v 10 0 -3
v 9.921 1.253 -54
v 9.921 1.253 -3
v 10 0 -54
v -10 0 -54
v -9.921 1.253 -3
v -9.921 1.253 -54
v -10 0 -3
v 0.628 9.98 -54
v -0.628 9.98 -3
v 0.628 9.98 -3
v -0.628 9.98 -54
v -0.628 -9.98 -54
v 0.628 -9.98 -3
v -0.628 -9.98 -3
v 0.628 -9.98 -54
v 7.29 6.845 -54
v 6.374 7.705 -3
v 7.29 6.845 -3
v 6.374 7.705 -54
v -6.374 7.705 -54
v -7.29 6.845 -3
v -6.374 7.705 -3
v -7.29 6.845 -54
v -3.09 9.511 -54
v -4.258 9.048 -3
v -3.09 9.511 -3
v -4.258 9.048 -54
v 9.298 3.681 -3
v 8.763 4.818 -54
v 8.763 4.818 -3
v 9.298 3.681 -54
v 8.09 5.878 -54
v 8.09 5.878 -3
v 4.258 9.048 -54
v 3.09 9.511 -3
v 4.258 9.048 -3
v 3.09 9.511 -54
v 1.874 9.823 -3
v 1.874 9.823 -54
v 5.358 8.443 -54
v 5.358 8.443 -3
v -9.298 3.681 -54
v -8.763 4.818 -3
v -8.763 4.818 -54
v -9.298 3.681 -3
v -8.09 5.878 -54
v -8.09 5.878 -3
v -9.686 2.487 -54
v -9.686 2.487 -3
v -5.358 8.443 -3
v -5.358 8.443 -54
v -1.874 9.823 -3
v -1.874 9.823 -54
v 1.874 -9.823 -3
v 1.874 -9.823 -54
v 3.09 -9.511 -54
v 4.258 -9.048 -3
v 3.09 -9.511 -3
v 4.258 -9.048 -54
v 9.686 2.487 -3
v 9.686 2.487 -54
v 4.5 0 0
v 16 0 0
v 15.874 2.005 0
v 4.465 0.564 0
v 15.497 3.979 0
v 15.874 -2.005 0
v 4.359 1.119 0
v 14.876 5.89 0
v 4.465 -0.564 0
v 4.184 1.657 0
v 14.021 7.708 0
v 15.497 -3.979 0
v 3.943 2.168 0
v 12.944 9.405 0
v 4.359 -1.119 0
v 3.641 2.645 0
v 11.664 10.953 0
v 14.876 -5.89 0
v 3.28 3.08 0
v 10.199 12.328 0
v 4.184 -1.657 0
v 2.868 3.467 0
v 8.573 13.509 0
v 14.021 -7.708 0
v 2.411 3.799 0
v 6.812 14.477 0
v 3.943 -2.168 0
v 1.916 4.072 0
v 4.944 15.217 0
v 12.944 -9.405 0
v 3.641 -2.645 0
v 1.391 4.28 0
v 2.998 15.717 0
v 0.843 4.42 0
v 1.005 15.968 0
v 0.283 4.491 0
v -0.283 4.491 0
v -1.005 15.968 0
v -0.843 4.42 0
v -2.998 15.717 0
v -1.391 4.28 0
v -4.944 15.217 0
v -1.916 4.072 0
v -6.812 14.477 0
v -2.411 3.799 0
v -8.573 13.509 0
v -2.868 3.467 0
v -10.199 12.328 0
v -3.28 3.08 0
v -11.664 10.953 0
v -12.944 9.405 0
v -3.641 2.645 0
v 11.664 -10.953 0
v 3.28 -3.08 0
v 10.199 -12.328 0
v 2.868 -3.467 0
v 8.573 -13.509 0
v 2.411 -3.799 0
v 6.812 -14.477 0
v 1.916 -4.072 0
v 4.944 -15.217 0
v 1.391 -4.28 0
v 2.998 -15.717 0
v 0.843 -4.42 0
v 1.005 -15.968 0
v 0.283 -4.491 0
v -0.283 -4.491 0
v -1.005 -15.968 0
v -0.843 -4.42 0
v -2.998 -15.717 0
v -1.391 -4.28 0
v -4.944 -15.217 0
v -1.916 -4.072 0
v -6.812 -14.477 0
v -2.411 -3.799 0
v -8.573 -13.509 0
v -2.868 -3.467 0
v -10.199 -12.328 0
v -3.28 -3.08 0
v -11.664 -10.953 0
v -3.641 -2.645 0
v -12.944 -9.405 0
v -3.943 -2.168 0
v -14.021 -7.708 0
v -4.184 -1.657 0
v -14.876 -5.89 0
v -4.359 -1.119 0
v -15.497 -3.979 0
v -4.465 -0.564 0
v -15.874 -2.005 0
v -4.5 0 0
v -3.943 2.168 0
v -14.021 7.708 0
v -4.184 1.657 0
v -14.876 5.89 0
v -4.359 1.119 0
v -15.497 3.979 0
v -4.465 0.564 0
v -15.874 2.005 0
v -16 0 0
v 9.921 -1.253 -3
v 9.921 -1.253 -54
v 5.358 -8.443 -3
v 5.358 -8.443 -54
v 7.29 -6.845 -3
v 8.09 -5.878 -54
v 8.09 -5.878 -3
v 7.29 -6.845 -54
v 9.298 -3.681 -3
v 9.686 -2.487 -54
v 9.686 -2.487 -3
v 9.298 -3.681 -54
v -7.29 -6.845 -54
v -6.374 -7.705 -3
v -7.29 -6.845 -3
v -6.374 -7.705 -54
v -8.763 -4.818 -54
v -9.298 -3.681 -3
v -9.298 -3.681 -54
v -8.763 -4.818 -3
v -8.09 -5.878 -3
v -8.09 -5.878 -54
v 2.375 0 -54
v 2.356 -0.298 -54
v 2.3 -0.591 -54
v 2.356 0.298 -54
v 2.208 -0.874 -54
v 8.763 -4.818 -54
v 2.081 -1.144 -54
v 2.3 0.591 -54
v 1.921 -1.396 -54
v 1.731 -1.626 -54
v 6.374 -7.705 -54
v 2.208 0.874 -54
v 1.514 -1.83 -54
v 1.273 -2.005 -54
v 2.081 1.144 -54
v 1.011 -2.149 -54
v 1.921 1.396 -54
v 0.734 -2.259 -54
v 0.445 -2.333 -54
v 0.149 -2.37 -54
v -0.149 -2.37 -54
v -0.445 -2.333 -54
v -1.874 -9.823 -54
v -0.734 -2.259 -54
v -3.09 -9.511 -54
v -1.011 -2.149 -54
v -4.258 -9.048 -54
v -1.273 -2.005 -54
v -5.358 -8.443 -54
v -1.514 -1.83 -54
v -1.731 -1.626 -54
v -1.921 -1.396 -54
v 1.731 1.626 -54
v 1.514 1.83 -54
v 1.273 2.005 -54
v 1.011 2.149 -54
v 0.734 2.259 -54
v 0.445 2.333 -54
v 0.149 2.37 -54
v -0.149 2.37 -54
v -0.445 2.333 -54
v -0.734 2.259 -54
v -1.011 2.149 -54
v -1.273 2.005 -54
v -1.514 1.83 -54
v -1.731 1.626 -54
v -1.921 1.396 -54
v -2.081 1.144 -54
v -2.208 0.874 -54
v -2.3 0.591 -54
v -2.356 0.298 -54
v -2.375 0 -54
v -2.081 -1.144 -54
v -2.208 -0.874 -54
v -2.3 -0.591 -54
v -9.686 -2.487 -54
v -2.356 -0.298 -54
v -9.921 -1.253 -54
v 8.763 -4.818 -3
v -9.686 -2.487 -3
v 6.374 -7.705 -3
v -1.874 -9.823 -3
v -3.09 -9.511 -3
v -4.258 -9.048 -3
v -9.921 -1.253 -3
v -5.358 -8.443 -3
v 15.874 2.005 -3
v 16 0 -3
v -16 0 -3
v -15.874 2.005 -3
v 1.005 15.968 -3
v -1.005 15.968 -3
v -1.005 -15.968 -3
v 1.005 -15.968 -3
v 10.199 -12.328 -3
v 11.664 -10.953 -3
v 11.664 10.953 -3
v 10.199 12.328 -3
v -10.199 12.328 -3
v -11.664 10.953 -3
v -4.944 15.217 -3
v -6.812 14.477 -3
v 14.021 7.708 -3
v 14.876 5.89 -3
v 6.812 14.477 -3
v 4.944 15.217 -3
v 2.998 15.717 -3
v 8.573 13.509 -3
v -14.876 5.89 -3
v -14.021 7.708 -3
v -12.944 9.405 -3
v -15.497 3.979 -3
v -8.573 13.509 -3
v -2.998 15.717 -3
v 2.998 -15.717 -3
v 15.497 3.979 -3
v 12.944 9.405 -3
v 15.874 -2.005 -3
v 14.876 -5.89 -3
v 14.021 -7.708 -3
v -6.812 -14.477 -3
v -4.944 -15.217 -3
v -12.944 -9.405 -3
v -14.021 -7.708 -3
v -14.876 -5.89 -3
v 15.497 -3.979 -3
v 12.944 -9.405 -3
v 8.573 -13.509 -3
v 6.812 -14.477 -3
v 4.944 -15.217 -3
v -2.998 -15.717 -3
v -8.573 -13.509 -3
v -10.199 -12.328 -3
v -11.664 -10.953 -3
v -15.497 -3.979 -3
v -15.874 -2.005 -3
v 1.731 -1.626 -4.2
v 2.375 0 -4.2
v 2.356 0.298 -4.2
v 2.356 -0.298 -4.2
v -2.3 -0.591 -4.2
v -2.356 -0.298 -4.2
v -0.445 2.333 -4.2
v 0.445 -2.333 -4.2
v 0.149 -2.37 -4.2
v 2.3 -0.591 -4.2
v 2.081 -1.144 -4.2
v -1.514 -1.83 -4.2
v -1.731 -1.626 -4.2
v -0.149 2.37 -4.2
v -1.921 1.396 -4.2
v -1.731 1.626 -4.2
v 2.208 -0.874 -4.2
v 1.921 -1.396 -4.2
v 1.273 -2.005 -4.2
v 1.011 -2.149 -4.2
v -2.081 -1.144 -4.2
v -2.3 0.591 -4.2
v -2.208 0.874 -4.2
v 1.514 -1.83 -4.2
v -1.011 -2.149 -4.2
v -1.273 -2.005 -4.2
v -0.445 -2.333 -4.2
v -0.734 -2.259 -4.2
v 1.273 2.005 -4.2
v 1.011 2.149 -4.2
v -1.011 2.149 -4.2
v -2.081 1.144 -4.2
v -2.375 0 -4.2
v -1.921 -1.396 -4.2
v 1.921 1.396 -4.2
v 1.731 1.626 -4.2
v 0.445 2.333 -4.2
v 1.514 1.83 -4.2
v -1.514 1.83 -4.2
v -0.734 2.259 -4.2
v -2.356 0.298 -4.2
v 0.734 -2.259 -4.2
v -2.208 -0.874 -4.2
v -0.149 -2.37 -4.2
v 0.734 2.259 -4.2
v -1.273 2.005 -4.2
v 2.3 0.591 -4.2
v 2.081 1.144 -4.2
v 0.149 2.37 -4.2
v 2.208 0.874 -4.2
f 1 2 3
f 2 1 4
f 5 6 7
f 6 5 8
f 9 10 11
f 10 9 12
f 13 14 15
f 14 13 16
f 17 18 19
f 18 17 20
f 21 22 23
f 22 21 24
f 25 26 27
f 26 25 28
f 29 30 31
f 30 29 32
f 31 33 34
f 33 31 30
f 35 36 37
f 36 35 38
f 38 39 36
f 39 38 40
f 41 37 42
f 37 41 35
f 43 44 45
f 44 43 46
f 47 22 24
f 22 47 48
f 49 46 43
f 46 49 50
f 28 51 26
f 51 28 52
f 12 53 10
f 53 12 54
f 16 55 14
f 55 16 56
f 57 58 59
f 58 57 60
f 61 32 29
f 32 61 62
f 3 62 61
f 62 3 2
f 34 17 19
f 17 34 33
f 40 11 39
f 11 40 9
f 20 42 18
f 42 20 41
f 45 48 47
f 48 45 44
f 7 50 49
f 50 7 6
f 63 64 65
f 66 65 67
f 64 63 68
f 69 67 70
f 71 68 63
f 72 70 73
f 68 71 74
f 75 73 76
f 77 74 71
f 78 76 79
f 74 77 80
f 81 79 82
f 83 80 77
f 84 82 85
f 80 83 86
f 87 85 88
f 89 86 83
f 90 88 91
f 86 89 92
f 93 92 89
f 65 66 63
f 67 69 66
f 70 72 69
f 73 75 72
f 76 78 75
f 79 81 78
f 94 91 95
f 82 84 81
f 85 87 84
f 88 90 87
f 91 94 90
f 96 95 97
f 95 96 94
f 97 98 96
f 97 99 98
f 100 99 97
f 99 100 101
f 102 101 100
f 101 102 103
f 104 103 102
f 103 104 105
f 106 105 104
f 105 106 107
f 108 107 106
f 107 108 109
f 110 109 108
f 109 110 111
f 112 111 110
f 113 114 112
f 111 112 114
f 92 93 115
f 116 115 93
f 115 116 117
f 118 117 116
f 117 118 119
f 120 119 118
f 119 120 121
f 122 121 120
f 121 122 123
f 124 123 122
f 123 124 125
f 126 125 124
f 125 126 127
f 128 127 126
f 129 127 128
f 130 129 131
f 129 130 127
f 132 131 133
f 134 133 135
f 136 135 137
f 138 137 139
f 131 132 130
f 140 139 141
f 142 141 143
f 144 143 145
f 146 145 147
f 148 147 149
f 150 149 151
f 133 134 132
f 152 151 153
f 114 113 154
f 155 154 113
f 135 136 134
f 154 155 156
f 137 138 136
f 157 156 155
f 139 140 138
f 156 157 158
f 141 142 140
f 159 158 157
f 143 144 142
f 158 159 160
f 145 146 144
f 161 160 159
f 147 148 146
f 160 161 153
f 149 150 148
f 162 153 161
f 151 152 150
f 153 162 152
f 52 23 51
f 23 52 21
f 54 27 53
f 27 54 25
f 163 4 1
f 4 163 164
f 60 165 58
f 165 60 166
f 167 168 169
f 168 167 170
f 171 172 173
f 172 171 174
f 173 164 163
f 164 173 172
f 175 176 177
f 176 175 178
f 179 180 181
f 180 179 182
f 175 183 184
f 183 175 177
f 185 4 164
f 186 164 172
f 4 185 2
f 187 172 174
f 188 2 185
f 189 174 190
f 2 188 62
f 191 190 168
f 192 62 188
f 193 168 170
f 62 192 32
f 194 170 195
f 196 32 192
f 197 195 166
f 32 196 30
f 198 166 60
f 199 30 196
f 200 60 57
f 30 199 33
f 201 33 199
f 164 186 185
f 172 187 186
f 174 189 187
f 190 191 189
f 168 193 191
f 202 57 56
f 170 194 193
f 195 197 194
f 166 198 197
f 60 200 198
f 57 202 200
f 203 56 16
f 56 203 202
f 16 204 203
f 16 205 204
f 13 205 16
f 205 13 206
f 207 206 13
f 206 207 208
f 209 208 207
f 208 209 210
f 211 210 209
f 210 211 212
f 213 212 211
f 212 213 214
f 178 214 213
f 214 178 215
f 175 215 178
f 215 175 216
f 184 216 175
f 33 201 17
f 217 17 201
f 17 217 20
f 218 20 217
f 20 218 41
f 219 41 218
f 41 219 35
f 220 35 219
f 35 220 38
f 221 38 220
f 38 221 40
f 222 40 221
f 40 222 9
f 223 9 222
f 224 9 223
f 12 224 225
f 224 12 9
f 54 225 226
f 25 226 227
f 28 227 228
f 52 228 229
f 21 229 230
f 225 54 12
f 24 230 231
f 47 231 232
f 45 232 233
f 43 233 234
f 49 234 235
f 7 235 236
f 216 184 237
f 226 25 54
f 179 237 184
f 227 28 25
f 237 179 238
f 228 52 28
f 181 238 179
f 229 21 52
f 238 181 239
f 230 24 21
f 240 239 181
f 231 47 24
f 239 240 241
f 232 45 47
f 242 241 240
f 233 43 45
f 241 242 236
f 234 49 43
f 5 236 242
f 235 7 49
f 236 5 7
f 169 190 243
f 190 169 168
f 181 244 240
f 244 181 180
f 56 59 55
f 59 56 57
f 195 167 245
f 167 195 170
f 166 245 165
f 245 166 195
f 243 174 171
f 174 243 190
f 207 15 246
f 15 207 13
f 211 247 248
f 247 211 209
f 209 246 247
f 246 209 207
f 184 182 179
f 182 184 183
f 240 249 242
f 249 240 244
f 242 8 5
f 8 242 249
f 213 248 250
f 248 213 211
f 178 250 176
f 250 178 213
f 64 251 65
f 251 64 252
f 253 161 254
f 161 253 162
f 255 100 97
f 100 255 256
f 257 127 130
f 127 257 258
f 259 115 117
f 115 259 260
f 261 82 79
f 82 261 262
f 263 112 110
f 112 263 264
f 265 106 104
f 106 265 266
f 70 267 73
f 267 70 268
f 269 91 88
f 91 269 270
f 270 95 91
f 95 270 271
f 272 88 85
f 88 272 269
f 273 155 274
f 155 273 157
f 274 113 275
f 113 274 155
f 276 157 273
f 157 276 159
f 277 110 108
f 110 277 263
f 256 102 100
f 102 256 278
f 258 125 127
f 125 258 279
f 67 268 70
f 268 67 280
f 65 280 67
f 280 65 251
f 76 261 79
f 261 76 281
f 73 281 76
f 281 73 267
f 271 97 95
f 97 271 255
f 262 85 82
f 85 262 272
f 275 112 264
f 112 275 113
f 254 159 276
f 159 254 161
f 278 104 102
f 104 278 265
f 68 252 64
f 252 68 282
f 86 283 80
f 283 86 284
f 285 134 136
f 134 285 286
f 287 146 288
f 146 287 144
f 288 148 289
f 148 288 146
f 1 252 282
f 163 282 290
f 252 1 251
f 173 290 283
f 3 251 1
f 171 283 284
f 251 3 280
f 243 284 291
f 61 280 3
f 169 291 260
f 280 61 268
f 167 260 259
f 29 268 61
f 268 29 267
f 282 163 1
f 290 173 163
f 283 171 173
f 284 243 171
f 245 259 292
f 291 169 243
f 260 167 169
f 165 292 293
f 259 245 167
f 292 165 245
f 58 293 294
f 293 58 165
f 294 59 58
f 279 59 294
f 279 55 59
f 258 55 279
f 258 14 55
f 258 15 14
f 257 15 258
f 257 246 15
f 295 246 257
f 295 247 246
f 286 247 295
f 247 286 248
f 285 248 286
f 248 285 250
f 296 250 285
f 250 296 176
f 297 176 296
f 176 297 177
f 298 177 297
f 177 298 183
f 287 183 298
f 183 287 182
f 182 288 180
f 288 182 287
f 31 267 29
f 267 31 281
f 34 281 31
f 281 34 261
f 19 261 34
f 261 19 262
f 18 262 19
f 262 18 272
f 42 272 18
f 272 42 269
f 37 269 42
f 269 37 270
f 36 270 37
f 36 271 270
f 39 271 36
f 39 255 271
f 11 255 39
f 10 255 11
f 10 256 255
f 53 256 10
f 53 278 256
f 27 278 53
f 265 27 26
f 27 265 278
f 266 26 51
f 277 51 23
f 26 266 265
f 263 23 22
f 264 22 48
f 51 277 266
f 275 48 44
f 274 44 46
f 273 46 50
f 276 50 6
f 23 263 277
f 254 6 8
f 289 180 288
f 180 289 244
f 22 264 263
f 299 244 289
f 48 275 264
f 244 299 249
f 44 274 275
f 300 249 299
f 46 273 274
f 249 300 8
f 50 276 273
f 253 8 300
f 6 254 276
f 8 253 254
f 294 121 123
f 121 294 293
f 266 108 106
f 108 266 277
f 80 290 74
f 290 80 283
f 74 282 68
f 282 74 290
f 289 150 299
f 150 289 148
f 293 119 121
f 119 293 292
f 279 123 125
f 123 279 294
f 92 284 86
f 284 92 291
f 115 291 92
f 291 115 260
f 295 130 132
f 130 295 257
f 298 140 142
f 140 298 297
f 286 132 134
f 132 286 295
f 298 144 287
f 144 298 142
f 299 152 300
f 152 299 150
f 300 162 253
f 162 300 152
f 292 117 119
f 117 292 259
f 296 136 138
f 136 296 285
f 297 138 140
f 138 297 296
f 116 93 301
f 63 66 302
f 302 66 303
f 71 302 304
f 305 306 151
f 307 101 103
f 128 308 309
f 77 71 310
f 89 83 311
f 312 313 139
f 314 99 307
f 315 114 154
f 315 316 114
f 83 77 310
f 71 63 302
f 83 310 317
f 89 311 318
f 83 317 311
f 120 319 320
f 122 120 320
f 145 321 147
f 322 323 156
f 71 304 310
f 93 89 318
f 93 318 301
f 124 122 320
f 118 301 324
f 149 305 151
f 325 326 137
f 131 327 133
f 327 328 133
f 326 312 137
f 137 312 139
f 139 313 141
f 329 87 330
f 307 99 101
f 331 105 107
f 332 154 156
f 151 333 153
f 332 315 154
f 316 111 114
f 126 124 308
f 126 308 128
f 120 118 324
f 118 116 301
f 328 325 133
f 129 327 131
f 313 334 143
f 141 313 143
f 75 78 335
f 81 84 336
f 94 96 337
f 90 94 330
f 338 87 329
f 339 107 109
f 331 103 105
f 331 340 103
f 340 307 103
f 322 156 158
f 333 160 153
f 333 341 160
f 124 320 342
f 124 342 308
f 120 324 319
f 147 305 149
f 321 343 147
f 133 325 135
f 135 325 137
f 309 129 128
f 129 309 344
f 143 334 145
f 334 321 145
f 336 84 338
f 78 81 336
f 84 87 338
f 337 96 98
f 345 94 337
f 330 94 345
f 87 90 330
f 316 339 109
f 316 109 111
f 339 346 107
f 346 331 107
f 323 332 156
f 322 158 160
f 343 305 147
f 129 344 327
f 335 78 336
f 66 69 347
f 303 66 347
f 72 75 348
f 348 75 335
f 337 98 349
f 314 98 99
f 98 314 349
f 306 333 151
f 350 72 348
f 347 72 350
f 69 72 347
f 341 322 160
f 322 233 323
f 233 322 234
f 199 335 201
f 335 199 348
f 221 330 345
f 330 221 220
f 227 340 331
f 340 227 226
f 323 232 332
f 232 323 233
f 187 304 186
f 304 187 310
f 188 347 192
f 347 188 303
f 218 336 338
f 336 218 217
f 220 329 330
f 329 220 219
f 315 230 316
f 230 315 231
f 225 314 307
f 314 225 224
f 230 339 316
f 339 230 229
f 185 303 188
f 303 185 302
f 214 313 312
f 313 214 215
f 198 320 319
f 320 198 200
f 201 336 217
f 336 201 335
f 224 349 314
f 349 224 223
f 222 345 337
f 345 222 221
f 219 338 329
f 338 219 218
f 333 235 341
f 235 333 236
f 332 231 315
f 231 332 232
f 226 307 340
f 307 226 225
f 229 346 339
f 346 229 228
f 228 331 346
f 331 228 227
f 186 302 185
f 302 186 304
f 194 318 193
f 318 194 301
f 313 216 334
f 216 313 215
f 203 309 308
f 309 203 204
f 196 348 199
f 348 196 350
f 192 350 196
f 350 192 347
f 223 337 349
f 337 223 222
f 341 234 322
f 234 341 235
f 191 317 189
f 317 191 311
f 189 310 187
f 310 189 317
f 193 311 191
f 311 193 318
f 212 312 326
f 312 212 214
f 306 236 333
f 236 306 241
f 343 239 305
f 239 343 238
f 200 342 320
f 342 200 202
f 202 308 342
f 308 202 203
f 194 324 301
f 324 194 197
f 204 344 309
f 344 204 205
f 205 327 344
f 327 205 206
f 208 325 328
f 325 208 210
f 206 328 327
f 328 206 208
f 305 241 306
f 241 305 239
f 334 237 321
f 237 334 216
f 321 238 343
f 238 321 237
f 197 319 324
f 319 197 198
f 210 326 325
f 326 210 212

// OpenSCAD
$fn = 50;


difference() {
	union() {
		translate(v = [0, 0, -54.0000000000]) {
			cylinder(h = 54, r = 10.0000000000);
		}
		translate(v = [0, 0, -3.0000000000]) {
			cylinder(h = 3, r = 16.0000000000);
		}
	}
	union() {
		translate(v = [0, 0, 0]) {
			rotate(a = [0, 0, 0]) {
				difference() {
					union() {
						#translate(v = [0, 0, -54.0000000000]) {
							cylinder(h = 54, r = 2.2500000000);
						}
						#translate(v = [0, 0, -4.2000000000]) {
							cylinder(h = 4.2000000000, r1 = 2.3750000000, r2 = 4.5000000000);
						}
						#translate(v = [0, 0, -54.0000000000]) {
							cylinder(h = 54, r = 2.3750000000);
						}
						#translate(v = [0, 0, -54.0000000000]) {
							cylinder(h = 54, r = 2.2500000000);
						}
					}
					union();
				}
			}
		}
	}
}
